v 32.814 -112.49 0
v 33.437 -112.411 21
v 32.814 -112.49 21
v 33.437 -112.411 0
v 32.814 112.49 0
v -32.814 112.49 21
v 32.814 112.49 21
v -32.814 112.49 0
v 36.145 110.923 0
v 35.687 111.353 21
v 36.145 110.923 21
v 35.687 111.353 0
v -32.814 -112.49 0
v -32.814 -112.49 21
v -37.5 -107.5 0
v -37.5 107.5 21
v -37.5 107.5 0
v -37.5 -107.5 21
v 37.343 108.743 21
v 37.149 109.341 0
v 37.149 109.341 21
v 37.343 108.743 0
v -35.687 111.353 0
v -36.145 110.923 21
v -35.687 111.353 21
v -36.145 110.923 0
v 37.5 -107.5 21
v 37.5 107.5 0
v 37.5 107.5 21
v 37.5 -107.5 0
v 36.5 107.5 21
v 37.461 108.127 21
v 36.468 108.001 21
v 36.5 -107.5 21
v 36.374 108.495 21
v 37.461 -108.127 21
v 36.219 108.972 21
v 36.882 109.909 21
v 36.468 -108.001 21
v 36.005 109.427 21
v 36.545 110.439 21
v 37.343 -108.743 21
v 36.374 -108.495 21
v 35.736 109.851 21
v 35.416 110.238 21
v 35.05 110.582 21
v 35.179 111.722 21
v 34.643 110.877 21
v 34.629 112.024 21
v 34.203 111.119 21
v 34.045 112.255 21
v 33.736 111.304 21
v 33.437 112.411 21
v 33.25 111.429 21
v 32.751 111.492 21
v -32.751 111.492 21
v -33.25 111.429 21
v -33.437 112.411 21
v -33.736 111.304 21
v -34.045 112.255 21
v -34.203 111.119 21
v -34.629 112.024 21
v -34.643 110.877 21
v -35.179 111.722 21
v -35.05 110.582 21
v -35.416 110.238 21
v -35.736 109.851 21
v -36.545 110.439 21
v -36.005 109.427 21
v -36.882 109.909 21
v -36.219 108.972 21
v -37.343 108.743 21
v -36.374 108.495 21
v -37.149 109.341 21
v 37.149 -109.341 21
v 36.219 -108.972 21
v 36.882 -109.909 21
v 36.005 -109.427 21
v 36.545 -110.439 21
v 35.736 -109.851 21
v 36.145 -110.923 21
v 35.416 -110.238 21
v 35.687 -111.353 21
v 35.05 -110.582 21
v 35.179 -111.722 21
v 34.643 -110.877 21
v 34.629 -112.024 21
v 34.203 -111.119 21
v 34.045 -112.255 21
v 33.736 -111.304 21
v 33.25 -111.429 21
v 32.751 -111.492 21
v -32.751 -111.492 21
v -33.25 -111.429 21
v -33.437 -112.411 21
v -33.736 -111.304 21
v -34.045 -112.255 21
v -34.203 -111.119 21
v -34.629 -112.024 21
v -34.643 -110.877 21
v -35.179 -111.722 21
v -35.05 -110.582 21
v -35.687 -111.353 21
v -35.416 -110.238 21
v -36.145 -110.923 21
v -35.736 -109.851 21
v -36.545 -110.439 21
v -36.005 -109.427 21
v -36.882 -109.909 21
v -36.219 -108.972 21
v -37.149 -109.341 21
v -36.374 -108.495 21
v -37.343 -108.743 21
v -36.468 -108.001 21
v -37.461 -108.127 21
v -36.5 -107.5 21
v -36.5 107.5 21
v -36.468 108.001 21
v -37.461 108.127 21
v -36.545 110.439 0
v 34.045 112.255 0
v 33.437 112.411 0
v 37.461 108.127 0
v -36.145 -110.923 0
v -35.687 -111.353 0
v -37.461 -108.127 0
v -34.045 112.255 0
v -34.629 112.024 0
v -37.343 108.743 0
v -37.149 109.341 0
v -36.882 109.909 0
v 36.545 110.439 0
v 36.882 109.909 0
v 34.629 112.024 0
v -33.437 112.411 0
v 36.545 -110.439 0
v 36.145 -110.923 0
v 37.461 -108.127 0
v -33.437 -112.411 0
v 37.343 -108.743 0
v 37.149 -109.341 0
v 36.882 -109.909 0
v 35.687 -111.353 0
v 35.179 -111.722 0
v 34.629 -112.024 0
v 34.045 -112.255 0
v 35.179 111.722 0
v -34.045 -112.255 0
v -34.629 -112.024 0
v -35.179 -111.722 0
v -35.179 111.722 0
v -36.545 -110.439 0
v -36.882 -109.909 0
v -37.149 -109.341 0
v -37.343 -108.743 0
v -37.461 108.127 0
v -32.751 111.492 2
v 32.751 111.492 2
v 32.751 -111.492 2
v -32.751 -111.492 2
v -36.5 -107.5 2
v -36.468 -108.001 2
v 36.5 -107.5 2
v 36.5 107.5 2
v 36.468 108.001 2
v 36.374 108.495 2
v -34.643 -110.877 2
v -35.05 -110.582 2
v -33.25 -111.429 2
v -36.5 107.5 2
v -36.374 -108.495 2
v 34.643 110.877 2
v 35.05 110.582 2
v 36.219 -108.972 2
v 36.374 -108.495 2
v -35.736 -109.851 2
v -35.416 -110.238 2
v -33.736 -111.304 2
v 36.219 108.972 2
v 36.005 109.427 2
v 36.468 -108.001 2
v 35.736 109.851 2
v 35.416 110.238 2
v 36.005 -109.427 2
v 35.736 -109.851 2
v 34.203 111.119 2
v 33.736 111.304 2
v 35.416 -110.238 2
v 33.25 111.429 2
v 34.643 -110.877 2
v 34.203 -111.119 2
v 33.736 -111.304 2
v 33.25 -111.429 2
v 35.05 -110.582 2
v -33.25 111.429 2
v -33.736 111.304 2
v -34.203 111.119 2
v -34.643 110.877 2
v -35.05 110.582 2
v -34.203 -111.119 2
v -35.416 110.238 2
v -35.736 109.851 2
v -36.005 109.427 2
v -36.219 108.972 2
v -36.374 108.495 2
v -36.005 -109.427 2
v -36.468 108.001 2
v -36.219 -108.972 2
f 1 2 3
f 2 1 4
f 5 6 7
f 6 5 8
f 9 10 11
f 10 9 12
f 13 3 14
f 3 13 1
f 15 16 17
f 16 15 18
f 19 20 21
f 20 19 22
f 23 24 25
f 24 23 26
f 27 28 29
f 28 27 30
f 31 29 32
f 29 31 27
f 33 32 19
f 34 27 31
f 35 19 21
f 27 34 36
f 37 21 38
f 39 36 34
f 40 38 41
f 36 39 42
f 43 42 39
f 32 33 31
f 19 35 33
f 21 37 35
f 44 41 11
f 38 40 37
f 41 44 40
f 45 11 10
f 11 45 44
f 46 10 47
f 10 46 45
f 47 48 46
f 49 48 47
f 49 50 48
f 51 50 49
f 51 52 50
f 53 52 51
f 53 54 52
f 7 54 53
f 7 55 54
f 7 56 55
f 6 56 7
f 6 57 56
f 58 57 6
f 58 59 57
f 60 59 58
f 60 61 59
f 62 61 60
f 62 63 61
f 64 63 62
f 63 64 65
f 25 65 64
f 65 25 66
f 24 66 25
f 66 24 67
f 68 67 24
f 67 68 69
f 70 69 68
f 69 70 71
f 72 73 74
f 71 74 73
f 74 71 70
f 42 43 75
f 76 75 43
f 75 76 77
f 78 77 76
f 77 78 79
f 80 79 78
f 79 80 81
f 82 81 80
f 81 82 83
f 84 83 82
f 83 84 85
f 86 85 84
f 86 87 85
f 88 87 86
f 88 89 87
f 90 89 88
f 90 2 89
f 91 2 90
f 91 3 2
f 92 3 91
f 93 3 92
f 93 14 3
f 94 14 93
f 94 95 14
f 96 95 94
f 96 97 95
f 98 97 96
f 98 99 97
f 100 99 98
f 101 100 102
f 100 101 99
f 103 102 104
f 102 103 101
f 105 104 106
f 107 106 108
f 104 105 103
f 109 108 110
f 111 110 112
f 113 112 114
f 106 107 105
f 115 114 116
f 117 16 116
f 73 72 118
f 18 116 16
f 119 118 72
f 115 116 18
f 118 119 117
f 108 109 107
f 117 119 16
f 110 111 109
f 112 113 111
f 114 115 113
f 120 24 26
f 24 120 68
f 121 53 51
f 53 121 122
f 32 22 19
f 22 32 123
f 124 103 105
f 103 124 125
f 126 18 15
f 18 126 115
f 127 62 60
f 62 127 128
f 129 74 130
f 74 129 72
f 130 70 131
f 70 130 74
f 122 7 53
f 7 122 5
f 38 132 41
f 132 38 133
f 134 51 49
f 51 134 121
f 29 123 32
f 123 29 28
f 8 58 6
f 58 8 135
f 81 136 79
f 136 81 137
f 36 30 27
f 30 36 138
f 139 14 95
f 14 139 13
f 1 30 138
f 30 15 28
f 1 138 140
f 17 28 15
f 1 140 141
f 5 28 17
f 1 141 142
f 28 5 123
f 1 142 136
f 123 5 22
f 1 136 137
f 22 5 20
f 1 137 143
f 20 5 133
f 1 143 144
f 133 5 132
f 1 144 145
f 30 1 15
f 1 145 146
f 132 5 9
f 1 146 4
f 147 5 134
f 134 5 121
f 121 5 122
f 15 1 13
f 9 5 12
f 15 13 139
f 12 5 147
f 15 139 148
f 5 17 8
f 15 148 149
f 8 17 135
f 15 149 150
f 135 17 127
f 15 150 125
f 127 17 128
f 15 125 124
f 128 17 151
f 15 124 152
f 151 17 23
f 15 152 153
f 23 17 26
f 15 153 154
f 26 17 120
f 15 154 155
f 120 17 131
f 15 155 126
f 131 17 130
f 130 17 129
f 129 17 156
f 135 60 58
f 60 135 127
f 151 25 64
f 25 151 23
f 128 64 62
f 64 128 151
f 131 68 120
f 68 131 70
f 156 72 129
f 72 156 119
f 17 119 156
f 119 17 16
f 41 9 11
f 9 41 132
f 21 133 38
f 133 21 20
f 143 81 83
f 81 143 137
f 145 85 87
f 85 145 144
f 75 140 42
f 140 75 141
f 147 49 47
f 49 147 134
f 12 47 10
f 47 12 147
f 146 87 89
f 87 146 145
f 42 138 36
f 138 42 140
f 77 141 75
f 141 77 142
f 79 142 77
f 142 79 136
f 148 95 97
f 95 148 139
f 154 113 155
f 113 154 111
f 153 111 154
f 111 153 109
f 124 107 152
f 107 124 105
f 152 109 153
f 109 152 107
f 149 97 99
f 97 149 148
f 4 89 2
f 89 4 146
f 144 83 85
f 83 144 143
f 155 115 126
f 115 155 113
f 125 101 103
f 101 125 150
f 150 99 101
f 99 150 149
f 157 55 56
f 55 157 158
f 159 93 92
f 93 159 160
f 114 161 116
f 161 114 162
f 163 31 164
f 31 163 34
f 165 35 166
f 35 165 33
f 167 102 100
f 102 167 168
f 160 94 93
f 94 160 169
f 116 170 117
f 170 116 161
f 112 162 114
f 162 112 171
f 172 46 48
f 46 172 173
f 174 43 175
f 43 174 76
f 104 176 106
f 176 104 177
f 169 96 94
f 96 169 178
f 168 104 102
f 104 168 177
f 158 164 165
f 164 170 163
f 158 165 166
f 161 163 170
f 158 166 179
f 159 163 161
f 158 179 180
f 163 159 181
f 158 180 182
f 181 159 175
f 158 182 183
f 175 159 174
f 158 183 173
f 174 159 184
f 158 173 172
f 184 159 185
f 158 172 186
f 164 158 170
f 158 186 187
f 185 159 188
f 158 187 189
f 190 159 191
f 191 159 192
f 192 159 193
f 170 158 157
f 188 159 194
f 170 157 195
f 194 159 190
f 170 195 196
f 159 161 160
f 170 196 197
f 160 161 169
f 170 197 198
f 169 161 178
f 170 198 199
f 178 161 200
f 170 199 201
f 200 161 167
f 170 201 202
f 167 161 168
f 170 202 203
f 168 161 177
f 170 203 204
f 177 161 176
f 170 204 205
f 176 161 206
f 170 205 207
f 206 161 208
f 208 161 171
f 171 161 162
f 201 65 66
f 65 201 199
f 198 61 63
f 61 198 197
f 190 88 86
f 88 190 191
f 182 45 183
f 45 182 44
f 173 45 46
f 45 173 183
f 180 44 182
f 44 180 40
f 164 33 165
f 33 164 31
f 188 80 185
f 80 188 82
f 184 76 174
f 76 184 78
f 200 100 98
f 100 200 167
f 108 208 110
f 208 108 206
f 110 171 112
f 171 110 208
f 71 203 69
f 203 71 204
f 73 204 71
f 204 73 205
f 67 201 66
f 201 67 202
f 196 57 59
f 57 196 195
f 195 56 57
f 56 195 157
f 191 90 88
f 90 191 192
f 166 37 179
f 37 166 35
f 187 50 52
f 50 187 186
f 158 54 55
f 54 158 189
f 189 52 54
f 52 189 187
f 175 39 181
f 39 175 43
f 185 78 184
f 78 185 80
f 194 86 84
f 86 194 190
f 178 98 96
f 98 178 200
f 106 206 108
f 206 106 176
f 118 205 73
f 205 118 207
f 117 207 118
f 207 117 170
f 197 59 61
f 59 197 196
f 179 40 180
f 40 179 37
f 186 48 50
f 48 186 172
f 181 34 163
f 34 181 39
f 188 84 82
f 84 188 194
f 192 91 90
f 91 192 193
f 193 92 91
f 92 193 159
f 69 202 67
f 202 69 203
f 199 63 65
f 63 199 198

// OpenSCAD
$fn = 50;


difference() {
	union() {
		hull() {
			translate(v = [-32.5000000000, 107.5000000000, 0]) {
				cylinder(h = 21, r = 5);
			}
			translate(v = [32.5000000000, 107.5000000000, 0]) {
				cylinder(h = 21, r = 5);
			}
			translate(v = [-32.5000000000, -107.5000000000, 0]) {
				cylinder(h = 21, r = 5);
			}
			translate(v = [32.5000000000, -107.5000000000, 0]) {
				cylinder(h = 21, r = 5);
			}
		}
	}
	union() {
		translate(v = [0, 0, 2]) {
			hull() {
				translate(v = [-32.5000000000, 107.5000000000, 0]) {
					cylinder(h = 19, r = 4);
				}
				translate(v = [32.5000000000, 107.5000000000, 0]) {
					cylinder(h = 19, r = 4);
				}
				translate(v = [-32.5000000000, -107.5000000000, 0]) {
					cylinder(h = 19, r = 4);
				}
				translate(v = [32.5000000000, -107.5000000000, 0]) {
					cylinder(h = 19, r = 4);
				}
			}
		}
	}
}
